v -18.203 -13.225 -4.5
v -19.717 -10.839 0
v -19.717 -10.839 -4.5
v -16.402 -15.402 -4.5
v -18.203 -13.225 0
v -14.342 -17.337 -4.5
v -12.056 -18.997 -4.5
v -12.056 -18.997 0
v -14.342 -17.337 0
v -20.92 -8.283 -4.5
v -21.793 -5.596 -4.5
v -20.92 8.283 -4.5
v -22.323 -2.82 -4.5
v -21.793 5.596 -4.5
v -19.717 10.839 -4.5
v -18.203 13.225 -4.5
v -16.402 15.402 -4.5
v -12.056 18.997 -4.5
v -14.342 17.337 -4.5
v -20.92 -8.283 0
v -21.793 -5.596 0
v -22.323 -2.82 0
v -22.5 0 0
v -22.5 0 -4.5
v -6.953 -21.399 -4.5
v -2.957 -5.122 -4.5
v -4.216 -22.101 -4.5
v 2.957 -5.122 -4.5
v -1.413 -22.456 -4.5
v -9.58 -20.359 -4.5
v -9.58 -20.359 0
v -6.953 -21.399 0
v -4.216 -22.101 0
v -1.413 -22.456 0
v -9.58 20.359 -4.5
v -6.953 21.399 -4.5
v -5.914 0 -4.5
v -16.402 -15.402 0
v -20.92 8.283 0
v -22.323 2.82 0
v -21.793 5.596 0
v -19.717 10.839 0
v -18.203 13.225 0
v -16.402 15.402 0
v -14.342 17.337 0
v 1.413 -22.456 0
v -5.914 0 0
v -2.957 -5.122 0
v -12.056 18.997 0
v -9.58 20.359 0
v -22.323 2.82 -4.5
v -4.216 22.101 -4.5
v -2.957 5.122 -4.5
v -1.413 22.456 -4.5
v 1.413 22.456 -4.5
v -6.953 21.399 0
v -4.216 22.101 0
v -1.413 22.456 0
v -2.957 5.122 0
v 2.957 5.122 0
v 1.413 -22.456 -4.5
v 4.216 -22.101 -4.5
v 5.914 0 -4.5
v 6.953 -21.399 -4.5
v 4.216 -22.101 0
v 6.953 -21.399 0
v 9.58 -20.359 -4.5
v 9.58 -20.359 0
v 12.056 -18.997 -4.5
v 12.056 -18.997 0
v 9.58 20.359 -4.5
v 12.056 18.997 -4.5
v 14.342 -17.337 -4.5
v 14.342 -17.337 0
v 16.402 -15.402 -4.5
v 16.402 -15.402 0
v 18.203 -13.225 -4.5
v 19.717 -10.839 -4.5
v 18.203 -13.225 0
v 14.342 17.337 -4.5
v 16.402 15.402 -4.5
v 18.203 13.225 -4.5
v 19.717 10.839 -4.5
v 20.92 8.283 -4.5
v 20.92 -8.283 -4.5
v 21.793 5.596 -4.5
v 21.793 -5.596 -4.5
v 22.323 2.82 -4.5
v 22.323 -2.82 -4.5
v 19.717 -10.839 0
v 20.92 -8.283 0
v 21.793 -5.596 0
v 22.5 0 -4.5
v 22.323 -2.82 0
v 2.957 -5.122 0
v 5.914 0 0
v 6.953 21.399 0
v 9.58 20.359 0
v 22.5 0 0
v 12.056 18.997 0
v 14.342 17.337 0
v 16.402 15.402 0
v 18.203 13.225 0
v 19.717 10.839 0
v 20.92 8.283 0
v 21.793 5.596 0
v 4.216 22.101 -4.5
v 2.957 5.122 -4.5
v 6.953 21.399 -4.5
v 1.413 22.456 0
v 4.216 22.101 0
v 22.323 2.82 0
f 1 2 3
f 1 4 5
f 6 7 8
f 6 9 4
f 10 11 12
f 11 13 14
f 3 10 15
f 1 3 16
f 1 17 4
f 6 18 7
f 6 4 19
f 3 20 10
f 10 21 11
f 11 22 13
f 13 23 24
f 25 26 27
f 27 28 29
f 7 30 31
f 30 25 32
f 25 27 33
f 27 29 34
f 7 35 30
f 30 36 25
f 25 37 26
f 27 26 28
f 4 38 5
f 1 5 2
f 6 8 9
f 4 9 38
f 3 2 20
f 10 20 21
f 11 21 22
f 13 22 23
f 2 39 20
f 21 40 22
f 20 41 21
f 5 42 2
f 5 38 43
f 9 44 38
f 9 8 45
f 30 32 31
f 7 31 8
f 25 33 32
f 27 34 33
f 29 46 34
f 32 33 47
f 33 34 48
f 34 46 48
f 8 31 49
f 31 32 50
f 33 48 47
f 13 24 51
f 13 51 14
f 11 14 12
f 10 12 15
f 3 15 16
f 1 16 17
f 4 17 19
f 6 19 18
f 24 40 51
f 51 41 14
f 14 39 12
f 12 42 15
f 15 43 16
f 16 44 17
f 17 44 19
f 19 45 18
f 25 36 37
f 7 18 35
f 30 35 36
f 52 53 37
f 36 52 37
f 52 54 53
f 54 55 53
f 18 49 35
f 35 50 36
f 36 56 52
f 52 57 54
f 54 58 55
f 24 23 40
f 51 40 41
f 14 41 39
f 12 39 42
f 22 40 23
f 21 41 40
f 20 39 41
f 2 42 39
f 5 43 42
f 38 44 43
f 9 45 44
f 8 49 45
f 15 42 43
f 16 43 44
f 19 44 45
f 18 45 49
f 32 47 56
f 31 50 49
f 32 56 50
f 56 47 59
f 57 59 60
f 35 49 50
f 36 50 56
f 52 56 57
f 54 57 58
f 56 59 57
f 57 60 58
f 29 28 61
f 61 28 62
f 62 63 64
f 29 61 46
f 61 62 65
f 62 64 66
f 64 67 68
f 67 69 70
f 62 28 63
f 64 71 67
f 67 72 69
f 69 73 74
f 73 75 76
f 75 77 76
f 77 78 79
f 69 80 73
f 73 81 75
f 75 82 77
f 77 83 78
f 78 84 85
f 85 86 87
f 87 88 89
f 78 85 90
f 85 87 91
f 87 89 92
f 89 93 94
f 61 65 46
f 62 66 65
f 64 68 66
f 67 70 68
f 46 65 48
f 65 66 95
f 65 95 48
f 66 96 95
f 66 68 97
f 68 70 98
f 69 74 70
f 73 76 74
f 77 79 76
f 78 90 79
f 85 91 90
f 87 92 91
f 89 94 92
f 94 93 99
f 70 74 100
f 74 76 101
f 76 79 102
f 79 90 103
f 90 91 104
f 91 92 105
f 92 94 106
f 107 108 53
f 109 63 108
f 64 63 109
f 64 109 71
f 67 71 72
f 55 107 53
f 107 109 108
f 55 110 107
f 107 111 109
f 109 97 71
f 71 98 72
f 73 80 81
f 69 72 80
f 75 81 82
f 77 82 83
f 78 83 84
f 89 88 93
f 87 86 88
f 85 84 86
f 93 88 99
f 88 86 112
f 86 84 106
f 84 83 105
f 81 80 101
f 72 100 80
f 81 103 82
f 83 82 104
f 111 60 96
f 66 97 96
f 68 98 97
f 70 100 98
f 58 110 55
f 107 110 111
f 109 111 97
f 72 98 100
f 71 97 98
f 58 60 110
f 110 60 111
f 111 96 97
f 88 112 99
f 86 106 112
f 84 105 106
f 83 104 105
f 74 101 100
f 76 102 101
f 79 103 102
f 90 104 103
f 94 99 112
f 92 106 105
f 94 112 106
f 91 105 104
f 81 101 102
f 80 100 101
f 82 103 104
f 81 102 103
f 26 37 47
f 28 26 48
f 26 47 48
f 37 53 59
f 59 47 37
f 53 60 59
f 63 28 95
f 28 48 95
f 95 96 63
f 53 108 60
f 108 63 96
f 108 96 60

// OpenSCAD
$fn = 50;

difference() {
	union() {
		translate(v = [0, 0, -4.5]) {
			cylinder(h = 4.5, r = 22.5);
		}
		#translate(v = [0, 0, -6.0]) {
			cylinder(h = 6, r = 2.875);
		}
	}
	union() {
		translate(v = [0, 0, 0]) {
			rotate(a = [0, 0, 0]) {
				difference() {
					union() {
						translate(v = [0, 0, -5]) {
							linear_extrude(height = 5) {
								polygon(points = [[5.914249999999999, 0.0], [2.957125, 5.1218907443321156], [-2.9571249999999982, 5.1218907443321156], [-5.914249999999999, 7.242867331857232e-16], [-2.9571250000000022, -5.121890744332115], [2.9571249999999956, -5.121890744332118]]);
							}
						}
					}
					union();
				}
			}
		}
		#translate(v = [0, 0, -100.0]) {
			cylinder(h = 200, r = 3.25);
		}
	}
}
